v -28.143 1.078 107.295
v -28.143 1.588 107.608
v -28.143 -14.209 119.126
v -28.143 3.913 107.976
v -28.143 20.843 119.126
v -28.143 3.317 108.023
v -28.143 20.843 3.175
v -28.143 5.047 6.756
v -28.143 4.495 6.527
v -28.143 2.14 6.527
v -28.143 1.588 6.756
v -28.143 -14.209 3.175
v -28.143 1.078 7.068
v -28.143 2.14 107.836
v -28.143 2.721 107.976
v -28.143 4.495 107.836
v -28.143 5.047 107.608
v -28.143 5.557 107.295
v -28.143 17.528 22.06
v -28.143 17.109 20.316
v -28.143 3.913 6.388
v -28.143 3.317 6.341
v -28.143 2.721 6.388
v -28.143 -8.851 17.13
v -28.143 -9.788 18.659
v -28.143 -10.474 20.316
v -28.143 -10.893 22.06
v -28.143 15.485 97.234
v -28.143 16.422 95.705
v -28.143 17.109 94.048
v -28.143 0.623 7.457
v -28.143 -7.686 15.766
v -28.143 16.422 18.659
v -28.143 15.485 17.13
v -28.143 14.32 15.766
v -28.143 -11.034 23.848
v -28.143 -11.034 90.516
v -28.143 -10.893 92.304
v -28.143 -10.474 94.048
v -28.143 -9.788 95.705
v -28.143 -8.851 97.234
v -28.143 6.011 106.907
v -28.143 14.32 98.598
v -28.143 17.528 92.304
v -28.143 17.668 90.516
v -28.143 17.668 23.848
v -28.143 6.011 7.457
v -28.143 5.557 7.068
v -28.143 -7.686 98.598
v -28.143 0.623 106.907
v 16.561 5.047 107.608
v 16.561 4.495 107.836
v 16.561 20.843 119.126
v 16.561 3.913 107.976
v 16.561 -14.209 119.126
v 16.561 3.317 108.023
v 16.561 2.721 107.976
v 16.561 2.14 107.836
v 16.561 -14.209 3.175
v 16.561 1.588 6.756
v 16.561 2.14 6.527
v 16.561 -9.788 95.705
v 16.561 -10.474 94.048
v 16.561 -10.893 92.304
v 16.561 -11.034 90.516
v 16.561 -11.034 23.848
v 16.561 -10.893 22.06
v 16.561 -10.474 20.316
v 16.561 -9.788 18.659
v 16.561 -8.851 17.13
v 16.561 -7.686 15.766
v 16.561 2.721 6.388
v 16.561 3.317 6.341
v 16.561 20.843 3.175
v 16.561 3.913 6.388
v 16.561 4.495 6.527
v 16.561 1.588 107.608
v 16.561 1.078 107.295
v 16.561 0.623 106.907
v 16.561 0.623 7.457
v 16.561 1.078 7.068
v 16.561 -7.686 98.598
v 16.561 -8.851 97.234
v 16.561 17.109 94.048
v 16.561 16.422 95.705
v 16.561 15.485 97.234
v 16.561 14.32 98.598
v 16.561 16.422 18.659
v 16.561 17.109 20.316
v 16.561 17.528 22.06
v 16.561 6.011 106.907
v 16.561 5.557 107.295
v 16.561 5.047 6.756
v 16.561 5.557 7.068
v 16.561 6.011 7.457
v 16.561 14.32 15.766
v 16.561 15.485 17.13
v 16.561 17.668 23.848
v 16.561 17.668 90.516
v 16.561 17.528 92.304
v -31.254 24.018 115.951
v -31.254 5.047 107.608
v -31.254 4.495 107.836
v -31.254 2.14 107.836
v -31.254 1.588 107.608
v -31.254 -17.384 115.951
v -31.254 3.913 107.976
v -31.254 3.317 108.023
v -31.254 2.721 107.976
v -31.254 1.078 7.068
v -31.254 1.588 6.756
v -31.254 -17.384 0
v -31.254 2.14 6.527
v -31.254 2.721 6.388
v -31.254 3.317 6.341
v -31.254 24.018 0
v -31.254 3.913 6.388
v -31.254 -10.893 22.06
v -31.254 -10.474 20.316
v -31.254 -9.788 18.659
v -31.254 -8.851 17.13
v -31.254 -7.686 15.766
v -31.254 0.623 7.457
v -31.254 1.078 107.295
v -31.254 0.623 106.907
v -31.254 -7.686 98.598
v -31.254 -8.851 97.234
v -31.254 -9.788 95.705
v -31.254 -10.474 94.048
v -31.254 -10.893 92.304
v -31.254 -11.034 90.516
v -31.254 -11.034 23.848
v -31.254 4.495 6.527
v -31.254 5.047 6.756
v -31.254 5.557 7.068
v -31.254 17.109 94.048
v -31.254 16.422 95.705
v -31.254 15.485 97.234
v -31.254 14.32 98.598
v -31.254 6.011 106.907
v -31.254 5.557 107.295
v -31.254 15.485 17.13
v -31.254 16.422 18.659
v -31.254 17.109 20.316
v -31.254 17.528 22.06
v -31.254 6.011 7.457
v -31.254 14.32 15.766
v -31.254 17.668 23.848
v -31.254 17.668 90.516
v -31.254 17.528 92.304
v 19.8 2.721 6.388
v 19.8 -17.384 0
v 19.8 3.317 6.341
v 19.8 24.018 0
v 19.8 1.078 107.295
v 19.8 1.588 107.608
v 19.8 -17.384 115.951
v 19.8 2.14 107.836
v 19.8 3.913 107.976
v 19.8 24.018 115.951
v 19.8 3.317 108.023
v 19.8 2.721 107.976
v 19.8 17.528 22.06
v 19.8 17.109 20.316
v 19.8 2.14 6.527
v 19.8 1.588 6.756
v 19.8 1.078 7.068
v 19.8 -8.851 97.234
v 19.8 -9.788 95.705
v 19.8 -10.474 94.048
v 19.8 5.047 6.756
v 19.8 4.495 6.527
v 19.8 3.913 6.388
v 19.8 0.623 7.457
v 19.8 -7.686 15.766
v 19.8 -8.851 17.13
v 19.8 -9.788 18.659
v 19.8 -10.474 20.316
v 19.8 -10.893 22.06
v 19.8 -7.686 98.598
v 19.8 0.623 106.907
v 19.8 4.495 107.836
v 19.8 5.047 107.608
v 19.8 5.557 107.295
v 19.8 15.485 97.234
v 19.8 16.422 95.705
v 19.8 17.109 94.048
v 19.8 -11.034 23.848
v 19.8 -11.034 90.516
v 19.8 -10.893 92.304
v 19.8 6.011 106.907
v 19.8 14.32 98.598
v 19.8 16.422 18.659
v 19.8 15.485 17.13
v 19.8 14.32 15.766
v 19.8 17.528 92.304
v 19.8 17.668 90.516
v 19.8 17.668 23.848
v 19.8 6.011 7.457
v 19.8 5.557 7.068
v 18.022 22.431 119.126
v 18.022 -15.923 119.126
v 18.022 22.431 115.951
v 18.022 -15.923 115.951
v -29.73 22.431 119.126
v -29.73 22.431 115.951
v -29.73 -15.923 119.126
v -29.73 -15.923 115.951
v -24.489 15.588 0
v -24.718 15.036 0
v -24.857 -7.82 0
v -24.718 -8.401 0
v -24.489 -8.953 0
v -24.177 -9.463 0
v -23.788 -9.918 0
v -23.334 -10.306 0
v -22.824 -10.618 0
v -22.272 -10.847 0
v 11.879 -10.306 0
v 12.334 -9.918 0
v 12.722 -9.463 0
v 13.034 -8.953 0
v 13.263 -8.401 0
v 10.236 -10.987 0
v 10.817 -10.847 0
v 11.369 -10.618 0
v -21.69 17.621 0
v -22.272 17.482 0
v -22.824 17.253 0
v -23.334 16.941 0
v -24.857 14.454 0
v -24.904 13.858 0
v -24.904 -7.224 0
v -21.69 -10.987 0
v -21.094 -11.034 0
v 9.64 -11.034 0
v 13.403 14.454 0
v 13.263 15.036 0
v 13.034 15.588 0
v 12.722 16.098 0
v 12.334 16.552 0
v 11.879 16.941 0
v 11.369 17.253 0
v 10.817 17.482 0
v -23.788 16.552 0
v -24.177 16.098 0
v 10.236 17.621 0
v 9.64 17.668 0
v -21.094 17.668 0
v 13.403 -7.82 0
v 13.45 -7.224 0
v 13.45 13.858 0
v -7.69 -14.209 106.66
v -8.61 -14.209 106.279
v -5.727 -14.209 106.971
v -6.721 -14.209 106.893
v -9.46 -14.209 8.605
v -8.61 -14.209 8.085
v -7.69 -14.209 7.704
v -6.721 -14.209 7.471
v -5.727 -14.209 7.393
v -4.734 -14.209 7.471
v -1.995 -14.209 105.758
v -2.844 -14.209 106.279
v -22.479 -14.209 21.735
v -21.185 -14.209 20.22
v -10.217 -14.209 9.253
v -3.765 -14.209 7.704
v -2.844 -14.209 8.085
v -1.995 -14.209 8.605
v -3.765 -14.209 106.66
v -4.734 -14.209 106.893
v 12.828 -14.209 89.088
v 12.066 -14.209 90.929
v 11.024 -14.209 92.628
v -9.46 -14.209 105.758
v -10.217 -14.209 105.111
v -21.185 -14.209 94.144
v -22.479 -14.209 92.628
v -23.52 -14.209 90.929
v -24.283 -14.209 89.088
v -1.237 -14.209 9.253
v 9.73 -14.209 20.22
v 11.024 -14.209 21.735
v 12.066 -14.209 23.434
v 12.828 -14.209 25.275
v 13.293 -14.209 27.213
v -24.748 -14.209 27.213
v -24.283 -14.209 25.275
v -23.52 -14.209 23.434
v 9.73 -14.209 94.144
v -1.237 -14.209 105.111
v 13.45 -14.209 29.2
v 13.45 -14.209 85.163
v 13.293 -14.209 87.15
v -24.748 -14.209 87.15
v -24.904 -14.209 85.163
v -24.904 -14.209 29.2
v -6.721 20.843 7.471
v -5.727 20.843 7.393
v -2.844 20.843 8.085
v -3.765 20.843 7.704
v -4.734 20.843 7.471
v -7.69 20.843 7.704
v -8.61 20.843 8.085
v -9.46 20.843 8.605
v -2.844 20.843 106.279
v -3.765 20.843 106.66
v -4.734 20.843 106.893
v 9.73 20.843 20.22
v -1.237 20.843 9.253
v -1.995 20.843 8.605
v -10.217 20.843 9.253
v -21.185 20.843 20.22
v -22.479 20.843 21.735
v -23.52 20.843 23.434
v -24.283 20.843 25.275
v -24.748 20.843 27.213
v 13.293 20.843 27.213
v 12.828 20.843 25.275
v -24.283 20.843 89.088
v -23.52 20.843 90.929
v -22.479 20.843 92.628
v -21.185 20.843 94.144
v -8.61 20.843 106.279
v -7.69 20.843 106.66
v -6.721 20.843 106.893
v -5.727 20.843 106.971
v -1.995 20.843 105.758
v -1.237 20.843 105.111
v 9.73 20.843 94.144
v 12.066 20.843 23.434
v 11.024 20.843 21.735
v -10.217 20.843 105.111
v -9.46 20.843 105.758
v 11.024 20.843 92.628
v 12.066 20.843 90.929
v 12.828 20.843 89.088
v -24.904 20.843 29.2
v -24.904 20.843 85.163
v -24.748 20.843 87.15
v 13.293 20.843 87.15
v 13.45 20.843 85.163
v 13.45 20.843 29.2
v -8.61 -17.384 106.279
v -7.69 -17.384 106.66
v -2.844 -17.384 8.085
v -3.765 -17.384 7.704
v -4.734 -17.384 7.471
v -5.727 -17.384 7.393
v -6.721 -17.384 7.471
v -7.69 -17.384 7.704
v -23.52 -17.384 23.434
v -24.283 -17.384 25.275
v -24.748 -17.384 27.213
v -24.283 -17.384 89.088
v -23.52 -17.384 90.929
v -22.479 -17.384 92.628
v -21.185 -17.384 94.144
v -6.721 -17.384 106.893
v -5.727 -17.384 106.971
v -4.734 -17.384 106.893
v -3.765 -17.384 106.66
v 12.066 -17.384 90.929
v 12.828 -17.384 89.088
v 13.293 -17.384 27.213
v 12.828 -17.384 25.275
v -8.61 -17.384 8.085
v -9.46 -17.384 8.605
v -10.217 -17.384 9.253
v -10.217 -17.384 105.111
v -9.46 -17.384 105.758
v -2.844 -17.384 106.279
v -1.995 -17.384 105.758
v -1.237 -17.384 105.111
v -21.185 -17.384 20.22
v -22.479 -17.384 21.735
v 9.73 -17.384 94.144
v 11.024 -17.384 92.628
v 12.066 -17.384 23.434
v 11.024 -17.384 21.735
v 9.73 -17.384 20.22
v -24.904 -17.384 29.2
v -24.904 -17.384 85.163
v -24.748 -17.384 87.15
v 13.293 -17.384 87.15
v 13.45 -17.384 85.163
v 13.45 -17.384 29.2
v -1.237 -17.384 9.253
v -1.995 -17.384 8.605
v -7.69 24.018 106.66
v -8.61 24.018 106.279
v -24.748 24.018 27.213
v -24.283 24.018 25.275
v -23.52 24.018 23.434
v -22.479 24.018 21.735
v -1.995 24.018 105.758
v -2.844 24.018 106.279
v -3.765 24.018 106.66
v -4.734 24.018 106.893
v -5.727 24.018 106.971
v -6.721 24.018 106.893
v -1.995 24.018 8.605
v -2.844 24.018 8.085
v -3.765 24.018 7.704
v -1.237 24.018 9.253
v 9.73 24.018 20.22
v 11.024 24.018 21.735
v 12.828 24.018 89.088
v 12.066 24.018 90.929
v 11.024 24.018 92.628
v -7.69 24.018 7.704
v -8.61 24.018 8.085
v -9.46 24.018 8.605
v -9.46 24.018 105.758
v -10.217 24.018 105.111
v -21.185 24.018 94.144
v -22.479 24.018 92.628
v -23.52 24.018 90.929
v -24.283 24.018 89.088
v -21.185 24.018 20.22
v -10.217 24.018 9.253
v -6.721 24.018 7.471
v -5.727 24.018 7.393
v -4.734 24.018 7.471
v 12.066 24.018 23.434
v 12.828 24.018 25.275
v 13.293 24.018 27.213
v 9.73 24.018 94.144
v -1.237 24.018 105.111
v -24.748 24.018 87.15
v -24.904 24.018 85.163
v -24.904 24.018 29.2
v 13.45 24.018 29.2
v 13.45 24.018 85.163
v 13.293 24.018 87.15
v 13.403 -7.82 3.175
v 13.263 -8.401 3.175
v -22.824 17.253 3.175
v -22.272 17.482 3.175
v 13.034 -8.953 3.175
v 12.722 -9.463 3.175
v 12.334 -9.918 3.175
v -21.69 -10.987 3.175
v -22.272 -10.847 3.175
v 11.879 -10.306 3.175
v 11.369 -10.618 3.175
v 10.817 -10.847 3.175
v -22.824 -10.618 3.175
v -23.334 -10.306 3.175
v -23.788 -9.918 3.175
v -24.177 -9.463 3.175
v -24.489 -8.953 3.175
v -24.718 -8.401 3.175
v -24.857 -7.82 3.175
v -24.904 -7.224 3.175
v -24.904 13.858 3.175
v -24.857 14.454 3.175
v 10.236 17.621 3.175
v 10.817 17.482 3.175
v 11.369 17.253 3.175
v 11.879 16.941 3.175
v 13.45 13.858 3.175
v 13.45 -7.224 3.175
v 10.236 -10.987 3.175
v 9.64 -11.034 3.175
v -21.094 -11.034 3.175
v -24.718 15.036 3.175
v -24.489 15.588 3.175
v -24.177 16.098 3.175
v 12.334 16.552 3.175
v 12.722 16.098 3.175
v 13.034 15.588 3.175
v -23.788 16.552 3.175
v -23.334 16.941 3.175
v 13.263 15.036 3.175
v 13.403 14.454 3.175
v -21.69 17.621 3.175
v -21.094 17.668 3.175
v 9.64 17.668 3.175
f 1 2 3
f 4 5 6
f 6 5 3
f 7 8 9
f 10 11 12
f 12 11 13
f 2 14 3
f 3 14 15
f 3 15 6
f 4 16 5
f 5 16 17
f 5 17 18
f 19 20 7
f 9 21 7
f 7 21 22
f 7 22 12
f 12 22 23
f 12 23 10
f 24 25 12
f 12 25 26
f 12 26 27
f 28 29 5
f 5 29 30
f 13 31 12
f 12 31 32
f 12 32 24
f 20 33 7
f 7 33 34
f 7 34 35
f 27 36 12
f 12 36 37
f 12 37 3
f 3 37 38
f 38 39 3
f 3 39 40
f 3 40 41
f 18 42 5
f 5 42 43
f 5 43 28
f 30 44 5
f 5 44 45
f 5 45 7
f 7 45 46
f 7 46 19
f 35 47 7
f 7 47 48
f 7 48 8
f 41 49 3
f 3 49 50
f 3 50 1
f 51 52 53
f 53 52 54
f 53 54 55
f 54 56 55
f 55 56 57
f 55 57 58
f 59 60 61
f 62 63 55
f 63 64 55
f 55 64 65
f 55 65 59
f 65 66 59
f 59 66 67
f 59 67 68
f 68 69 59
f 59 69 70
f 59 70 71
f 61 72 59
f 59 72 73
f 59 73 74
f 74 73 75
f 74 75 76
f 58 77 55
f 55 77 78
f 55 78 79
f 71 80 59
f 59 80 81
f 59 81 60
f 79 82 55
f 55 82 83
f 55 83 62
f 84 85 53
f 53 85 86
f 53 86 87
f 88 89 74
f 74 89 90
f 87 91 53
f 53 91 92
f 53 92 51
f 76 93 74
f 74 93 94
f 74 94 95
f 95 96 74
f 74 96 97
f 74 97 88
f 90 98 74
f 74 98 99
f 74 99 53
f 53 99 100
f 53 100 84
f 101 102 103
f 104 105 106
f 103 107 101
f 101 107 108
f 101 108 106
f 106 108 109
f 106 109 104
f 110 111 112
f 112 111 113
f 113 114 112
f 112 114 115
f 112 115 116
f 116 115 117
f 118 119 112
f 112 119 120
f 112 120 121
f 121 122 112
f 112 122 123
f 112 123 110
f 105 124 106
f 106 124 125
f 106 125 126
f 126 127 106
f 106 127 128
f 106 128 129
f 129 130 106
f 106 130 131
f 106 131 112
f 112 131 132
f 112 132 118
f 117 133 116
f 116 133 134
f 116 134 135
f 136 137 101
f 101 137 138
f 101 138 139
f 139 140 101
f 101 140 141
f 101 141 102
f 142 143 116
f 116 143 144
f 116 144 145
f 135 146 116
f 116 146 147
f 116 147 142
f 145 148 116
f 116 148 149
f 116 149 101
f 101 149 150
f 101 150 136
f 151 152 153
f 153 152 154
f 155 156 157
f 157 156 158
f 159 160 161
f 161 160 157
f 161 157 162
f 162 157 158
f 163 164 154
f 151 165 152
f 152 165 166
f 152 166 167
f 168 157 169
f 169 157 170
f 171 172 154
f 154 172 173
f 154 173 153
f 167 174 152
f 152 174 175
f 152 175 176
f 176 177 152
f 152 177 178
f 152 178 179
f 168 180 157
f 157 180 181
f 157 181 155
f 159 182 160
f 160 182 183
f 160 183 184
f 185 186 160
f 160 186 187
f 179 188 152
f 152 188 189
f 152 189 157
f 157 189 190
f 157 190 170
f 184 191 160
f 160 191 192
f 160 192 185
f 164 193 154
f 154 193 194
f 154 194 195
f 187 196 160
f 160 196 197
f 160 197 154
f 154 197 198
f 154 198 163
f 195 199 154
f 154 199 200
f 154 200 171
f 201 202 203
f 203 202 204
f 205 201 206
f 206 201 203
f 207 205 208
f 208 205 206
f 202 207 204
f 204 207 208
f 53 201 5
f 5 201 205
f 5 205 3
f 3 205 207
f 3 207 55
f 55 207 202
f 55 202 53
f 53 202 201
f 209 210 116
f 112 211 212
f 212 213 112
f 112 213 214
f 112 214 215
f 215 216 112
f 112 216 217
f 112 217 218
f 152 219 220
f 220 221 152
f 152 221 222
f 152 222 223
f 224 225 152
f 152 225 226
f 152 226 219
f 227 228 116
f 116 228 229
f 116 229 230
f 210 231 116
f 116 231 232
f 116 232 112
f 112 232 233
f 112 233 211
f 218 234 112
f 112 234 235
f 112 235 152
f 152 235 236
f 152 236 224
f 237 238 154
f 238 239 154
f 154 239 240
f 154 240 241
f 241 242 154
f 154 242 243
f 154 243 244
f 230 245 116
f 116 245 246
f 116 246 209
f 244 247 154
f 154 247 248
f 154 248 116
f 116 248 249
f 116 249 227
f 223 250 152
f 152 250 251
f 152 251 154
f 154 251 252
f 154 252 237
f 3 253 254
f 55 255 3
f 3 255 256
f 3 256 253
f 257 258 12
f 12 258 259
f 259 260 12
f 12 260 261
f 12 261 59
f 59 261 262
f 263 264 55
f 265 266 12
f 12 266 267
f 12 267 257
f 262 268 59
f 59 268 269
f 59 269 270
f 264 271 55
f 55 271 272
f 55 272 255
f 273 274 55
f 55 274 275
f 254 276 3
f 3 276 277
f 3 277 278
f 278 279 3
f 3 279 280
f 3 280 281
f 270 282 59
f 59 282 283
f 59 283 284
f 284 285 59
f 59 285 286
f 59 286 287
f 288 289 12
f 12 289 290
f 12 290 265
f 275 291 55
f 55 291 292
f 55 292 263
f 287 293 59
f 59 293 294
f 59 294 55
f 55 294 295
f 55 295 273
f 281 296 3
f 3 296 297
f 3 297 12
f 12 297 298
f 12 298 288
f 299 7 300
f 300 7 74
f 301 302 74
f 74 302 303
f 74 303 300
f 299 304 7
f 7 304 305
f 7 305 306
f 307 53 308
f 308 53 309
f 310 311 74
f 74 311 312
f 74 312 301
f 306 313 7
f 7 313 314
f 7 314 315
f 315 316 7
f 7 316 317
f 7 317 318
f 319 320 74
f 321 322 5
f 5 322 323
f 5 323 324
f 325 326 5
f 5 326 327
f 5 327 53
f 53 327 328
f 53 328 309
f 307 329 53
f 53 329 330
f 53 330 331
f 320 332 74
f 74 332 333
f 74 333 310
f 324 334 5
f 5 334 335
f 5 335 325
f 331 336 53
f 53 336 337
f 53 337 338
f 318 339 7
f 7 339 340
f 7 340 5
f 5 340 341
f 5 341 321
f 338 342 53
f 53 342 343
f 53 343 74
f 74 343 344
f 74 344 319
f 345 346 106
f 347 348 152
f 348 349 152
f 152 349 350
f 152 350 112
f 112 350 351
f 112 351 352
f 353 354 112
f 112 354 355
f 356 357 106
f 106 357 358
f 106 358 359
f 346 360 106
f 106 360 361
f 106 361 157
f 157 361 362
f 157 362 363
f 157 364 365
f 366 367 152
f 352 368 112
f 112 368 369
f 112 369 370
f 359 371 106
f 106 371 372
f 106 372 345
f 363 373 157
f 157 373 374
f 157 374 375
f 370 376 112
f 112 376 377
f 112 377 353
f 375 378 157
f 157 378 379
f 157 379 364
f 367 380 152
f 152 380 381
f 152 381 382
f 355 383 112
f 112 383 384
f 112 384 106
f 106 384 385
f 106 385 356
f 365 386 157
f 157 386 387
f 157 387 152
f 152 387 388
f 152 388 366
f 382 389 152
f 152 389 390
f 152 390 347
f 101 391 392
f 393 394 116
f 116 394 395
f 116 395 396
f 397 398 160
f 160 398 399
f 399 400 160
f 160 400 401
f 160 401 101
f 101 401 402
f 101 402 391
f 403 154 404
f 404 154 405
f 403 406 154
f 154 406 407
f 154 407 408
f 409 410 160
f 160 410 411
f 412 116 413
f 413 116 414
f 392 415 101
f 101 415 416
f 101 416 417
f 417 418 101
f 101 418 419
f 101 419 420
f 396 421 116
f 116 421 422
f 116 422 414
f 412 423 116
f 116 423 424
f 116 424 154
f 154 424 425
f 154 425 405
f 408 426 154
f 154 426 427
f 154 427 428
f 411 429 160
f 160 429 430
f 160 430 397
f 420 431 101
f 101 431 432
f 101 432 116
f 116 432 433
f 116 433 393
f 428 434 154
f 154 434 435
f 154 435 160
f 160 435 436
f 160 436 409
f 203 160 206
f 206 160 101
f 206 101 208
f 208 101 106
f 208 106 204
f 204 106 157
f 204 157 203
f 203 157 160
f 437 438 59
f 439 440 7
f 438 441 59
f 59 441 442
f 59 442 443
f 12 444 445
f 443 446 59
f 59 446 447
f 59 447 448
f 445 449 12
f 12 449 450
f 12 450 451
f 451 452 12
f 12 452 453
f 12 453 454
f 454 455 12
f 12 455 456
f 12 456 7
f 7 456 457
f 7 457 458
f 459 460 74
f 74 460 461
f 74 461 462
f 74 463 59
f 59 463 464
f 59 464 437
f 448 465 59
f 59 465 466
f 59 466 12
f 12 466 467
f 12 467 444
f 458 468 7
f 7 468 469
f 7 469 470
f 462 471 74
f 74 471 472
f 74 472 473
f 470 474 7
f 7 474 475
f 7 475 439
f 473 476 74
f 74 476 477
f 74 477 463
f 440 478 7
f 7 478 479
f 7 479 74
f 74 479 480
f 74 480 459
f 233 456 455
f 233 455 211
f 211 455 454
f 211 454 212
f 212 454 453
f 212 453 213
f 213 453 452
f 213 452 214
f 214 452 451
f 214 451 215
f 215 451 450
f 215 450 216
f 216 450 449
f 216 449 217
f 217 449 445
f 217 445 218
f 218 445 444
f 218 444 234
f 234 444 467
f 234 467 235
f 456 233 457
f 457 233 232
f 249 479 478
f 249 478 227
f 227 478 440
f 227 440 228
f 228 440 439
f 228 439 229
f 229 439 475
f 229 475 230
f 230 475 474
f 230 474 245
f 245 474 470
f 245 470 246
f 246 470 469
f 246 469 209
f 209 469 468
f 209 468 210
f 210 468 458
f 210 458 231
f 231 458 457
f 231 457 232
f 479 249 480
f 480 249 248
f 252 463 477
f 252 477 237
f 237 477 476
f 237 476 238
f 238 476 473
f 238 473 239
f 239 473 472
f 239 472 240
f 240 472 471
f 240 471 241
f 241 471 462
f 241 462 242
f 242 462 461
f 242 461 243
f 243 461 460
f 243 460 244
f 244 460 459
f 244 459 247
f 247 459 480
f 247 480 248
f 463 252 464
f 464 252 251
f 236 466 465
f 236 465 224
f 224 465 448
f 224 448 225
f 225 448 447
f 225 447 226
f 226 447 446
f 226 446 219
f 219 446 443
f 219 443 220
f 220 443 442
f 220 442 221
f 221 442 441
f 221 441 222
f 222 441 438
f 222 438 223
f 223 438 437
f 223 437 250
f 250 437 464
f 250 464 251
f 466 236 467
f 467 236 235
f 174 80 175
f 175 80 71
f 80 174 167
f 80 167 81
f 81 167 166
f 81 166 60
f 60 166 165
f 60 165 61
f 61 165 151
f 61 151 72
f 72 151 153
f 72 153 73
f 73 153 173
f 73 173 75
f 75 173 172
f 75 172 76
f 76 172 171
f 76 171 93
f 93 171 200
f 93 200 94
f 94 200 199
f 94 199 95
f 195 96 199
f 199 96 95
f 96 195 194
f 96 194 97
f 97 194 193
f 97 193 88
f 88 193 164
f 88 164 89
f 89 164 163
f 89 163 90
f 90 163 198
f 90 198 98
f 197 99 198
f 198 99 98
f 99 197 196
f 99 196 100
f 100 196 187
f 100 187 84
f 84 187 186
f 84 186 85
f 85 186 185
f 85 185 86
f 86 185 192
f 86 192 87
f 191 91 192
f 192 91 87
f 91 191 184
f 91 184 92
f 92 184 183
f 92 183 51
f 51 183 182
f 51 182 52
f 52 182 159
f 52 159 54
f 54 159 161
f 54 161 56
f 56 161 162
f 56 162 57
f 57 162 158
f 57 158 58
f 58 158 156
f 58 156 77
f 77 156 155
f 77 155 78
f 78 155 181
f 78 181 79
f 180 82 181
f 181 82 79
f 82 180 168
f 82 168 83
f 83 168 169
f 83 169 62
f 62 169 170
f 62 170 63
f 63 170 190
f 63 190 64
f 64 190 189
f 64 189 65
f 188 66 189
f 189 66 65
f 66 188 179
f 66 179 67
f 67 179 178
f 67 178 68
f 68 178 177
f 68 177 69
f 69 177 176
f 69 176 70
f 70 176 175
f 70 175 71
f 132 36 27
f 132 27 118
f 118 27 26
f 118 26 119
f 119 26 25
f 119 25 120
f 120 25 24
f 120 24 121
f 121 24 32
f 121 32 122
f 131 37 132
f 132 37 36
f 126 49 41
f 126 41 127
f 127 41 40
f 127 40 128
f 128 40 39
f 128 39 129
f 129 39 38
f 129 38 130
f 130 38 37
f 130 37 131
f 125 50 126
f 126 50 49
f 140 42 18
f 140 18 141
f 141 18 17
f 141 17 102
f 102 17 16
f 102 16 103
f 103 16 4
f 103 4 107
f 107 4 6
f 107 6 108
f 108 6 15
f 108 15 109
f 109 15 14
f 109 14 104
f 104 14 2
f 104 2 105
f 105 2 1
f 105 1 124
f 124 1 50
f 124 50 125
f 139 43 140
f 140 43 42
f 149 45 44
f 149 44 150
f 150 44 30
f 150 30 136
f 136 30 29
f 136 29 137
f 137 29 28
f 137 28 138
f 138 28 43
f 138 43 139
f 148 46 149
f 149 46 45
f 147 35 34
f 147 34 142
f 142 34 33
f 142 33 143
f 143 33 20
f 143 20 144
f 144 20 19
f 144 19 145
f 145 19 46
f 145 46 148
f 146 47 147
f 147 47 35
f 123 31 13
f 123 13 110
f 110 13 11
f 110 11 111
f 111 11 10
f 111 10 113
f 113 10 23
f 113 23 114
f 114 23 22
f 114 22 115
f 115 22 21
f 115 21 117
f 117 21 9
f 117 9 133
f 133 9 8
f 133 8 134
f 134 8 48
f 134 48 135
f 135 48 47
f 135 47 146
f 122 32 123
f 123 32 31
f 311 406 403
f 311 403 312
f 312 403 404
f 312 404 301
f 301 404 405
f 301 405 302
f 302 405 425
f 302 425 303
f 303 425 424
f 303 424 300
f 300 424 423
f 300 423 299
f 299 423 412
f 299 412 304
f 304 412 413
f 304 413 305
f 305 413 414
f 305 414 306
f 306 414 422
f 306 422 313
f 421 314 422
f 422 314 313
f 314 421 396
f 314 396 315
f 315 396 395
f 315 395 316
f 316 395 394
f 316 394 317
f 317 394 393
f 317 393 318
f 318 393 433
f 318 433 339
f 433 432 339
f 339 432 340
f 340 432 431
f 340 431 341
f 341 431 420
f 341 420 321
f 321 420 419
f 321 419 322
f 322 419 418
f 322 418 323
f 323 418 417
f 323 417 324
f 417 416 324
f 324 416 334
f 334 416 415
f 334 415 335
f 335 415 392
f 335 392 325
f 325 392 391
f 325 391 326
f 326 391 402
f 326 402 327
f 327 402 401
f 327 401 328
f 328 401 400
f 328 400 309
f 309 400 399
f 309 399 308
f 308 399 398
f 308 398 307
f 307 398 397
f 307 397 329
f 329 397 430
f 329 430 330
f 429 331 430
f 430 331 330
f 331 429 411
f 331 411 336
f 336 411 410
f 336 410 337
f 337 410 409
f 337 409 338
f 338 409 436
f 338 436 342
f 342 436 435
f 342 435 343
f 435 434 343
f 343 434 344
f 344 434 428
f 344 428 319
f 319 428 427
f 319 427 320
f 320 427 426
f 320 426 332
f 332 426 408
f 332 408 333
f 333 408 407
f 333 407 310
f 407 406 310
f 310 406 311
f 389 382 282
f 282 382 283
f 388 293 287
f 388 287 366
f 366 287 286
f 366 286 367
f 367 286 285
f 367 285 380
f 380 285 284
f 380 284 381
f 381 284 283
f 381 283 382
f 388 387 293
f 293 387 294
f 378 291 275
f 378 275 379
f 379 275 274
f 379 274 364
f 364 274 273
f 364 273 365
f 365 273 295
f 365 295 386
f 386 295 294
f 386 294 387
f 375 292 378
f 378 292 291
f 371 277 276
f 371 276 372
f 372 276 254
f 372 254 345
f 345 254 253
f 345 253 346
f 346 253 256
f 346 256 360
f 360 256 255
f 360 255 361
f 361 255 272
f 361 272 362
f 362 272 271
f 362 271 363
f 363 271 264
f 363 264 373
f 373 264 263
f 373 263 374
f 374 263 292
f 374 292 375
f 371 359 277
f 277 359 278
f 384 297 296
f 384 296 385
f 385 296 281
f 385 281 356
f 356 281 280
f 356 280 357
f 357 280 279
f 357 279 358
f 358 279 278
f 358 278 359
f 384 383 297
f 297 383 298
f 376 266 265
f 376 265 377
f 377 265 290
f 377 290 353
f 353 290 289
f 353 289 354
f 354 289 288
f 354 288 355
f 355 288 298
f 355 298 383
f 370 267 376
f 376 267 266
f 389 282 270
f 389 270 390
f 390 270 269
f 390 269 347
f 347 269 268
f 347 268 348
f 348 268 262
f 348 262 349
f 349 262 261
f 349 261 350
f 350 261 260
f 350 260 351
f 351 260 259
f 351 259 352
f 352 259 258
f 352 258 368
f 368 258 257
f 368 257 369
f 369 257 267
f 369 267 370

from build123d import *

# Parameters (mm, degrees)
SKETCH2_W           = 44.704
SKETCH2_H           = 35.052
BOSS_EXTRUDE1_DEPTH = 119.126
SKETCH4_W           = 51.054
SKETCH4_H           = 41.402
SKETCH4_W_2         = 47.752
SKETCH4_H_2         = 38.354
BOSS_EXTRUDE2_DEPTH = 115.951
SKETCH5_W           = 51.054
SKETCH5_H           = 41.402
BOSS_EXTRUDE3_DEPTH = 3.175
CUT_EXTRUDE1_DEPTH  = 6.35
CUT_EXTRUDE2_DEPTH  = 132.811951465
CUT_EXTRUDE3_DEPTH  = 130.93059219


with BuildPart() as part:
    # Sketch2 → Boss-Extrude1 (new body)
    with BuildSketch(Plane.XY):
        Polygon((-29.730268616, 22.430738007), (18.021731384, 22.430738007), (18.021731384, -15.923261993), (-29.730268616, -15.923261993), (-29.730268616, -15.068411042), align=None)
        with Locations((-5.790768616, 3.317238007)):
            Rectangle(SKETCH2_W, SKETCH2_H, mode=Mode.SUBTRACT)
    extrude(amount=BOSS_EXTRUDE1_DEPTH)

    # Sketch4 → Boss-Extrude2 (add)
    with BuildSketch(Plane(origin=(0, 0, 0), x_dir=(-1, 0, 0), z_dir=(0, 0, -1))):
        with Locations((5.727268616, 3.317238007)):
            Rectangle(SKETCH4_W, SKETCH4_H)
        with Locations((5.854268616, 3.253738007)):
            Rectangle(SKETCH4_W_2, SKETCH4_H_2, mode=Mode.SUBTRACT)
    extrude(amount=-BOSS_EXTRUDE2_DEPTH)

    # Sketch5 → Boss-Extrude3 (add)
    with BuildSketch(Plane(origin=(0, 0, 0), x_dir=(-1, 0, 0), z_dir=(0, 0, -1))):
        with Locations((5.727268616, 3.317238007)):
            Rectangle(SKETCH5_W, SKETCH5_H)
    extrude(amount=-BOSS_EXTRUDE3_DEPTH)

    # Sketch6 → Cut-Extrude1 (cut)
    with BuildSketch(Plane.XY.offset(3.175)):
        with BuildLine():
            Line((-21.094268616, 17.668238007), (9.639731384, 17.668238007))
            ThreePointArc((9.639731384, 17.668238007), (12.33380822, 16.552314843), (13.449731384, 13.858238007))
            Line((13.449731384, 13.858238007), (13.449731384, -7.223761993))
            ThreePointArc((13.449731384, -7.223761993), (12.33380822, -9.91783883), (9.639731384, -11.033761993))
            Line((9.639731384, -11.033761993), (-21.094268616, -11.033761993))
            ThreePointArc((-21.094268616, -11.033761993), (-23.788345453, -9.91783883), (-24.904268616, -7.223761993))
            Line((-24.904268616, -7.223761993), (-24.904268616, 13.858238007))
            ThreePointArc((-24.904268616, 13.858238007), (-23.788345453, 16.552314843), (-21.094268616, 17.668238007))
        make_face()
    extrude(amount=-CUT_EXTRUDE1_DEPTH, mode=Mode.SUBTRACT)

    # Sketch7 → Cut-Extrude2 (cut, through all)
    with BuildSketch(Plane.ZY.offset(-19.799731384)):
        with BuildLine():
            Line((23.847961018, -11.033761993), (90.515538982, -11.033761993))
            ThreePointArc((90.515538982, -11.033761993), (94.889610614, -10.16370505), (98.597769491, -7.685992502))
            Line((98.597769491, -7.685992502), (106.906923164, 0.62316117))
            ThreePointArc((106.906923164, 0.62316117), (108.022846327, 3.317238007), (106.906923164, 6.011314843))
            Line((106.906923164, 6.011314843), (98.597769491, 14.320468515))
            ThreePointArc((98.597769491, 14.320468515), (94.889610614, 16.798181063), (90.515538982, 17.668238007))
            Line((90.515538982, 17.668238007), (23.847961018, 17.668238007))
            ThreePointArc((23.847961018, 17.668238007), (19.473889386, 16.798181063), (15.765730509, 14.320468515))
            Line((15.765730509, 14.320468515), (7.456576836, 6.011314843))
            ThreePointArc((7.456576836, 6.011314843), (6.340653673, 3.317238007), (7.456576836, 0.62316117))
            Line((7.456576836, 0.62316117), (15.765730509, -7.685992502))
            ThreePointArc((15.765730509, -7.685992502), (19.473889386, -10.16370505), (23.847961018, -11.033761993))
        make_face()
    extrude(amount=CUT_EXTRUDE2_DEPTH, mode=Mode.SUBTRACT)

    # Sketch8 → Cut-Extrude3 (cut, through all)
    with BuildSketch(Plane(origin=(0, 24.018238007, 0), x_dir=(1, 0, 0), z_dir=(0, 1, 0))):
        with BuildLine():
            Line((9.729987505, -20.219756121), (-1.237140556, -9.252628061))
            ThreePointArc((-1.237140556, -9.252628061), (-5.727268616, -7.392756121), (-10.217396677, -9.252628061))
            Line((-10.217396677, -9.252628061), (-21.184524737, -20.219756121))
            ThreePointArc((-21.184524737, -20.219756121), (-23.937538679, -24.339932651), (-24.904268616, -29.200012242))
            Line((-24.904268616, -29.200012242), (-24.904268616, -85.163487758))
            ThreePointArc((-24.904268616, -85.163487758), (-23.937538679, -90.023567349), (-21.184524737, -94.143743879))
            Line((-21.184524737, -94.143743879), (-10.217396677, -105.110871939))
            ThreePointArc((-10.217396677, -105.110871939), (-5.727268616, -106.970743879), (-1.237140556, -105.110871939))
            Line((-1.237140556, -105.110871939), (9.729987505, -94.143743879))
            ThreePointArc((9.729987505, -94.143743879), (12.483001447, -90.023567349), (13.449731384, -85.163487758))
            Line((13.449731384, -85.163487758), (13.449731384, -29.200012242))
            ThreePointArc((13.449731384, -29.200012242), (12.483001447, -24.339932651), (9.729987505, -20.219756121))
        make_face()
    extrude(amount=-CUT_EXTRUDE3_DEPTH, mode=Mode.SUBTRACT)


solid = part.part
